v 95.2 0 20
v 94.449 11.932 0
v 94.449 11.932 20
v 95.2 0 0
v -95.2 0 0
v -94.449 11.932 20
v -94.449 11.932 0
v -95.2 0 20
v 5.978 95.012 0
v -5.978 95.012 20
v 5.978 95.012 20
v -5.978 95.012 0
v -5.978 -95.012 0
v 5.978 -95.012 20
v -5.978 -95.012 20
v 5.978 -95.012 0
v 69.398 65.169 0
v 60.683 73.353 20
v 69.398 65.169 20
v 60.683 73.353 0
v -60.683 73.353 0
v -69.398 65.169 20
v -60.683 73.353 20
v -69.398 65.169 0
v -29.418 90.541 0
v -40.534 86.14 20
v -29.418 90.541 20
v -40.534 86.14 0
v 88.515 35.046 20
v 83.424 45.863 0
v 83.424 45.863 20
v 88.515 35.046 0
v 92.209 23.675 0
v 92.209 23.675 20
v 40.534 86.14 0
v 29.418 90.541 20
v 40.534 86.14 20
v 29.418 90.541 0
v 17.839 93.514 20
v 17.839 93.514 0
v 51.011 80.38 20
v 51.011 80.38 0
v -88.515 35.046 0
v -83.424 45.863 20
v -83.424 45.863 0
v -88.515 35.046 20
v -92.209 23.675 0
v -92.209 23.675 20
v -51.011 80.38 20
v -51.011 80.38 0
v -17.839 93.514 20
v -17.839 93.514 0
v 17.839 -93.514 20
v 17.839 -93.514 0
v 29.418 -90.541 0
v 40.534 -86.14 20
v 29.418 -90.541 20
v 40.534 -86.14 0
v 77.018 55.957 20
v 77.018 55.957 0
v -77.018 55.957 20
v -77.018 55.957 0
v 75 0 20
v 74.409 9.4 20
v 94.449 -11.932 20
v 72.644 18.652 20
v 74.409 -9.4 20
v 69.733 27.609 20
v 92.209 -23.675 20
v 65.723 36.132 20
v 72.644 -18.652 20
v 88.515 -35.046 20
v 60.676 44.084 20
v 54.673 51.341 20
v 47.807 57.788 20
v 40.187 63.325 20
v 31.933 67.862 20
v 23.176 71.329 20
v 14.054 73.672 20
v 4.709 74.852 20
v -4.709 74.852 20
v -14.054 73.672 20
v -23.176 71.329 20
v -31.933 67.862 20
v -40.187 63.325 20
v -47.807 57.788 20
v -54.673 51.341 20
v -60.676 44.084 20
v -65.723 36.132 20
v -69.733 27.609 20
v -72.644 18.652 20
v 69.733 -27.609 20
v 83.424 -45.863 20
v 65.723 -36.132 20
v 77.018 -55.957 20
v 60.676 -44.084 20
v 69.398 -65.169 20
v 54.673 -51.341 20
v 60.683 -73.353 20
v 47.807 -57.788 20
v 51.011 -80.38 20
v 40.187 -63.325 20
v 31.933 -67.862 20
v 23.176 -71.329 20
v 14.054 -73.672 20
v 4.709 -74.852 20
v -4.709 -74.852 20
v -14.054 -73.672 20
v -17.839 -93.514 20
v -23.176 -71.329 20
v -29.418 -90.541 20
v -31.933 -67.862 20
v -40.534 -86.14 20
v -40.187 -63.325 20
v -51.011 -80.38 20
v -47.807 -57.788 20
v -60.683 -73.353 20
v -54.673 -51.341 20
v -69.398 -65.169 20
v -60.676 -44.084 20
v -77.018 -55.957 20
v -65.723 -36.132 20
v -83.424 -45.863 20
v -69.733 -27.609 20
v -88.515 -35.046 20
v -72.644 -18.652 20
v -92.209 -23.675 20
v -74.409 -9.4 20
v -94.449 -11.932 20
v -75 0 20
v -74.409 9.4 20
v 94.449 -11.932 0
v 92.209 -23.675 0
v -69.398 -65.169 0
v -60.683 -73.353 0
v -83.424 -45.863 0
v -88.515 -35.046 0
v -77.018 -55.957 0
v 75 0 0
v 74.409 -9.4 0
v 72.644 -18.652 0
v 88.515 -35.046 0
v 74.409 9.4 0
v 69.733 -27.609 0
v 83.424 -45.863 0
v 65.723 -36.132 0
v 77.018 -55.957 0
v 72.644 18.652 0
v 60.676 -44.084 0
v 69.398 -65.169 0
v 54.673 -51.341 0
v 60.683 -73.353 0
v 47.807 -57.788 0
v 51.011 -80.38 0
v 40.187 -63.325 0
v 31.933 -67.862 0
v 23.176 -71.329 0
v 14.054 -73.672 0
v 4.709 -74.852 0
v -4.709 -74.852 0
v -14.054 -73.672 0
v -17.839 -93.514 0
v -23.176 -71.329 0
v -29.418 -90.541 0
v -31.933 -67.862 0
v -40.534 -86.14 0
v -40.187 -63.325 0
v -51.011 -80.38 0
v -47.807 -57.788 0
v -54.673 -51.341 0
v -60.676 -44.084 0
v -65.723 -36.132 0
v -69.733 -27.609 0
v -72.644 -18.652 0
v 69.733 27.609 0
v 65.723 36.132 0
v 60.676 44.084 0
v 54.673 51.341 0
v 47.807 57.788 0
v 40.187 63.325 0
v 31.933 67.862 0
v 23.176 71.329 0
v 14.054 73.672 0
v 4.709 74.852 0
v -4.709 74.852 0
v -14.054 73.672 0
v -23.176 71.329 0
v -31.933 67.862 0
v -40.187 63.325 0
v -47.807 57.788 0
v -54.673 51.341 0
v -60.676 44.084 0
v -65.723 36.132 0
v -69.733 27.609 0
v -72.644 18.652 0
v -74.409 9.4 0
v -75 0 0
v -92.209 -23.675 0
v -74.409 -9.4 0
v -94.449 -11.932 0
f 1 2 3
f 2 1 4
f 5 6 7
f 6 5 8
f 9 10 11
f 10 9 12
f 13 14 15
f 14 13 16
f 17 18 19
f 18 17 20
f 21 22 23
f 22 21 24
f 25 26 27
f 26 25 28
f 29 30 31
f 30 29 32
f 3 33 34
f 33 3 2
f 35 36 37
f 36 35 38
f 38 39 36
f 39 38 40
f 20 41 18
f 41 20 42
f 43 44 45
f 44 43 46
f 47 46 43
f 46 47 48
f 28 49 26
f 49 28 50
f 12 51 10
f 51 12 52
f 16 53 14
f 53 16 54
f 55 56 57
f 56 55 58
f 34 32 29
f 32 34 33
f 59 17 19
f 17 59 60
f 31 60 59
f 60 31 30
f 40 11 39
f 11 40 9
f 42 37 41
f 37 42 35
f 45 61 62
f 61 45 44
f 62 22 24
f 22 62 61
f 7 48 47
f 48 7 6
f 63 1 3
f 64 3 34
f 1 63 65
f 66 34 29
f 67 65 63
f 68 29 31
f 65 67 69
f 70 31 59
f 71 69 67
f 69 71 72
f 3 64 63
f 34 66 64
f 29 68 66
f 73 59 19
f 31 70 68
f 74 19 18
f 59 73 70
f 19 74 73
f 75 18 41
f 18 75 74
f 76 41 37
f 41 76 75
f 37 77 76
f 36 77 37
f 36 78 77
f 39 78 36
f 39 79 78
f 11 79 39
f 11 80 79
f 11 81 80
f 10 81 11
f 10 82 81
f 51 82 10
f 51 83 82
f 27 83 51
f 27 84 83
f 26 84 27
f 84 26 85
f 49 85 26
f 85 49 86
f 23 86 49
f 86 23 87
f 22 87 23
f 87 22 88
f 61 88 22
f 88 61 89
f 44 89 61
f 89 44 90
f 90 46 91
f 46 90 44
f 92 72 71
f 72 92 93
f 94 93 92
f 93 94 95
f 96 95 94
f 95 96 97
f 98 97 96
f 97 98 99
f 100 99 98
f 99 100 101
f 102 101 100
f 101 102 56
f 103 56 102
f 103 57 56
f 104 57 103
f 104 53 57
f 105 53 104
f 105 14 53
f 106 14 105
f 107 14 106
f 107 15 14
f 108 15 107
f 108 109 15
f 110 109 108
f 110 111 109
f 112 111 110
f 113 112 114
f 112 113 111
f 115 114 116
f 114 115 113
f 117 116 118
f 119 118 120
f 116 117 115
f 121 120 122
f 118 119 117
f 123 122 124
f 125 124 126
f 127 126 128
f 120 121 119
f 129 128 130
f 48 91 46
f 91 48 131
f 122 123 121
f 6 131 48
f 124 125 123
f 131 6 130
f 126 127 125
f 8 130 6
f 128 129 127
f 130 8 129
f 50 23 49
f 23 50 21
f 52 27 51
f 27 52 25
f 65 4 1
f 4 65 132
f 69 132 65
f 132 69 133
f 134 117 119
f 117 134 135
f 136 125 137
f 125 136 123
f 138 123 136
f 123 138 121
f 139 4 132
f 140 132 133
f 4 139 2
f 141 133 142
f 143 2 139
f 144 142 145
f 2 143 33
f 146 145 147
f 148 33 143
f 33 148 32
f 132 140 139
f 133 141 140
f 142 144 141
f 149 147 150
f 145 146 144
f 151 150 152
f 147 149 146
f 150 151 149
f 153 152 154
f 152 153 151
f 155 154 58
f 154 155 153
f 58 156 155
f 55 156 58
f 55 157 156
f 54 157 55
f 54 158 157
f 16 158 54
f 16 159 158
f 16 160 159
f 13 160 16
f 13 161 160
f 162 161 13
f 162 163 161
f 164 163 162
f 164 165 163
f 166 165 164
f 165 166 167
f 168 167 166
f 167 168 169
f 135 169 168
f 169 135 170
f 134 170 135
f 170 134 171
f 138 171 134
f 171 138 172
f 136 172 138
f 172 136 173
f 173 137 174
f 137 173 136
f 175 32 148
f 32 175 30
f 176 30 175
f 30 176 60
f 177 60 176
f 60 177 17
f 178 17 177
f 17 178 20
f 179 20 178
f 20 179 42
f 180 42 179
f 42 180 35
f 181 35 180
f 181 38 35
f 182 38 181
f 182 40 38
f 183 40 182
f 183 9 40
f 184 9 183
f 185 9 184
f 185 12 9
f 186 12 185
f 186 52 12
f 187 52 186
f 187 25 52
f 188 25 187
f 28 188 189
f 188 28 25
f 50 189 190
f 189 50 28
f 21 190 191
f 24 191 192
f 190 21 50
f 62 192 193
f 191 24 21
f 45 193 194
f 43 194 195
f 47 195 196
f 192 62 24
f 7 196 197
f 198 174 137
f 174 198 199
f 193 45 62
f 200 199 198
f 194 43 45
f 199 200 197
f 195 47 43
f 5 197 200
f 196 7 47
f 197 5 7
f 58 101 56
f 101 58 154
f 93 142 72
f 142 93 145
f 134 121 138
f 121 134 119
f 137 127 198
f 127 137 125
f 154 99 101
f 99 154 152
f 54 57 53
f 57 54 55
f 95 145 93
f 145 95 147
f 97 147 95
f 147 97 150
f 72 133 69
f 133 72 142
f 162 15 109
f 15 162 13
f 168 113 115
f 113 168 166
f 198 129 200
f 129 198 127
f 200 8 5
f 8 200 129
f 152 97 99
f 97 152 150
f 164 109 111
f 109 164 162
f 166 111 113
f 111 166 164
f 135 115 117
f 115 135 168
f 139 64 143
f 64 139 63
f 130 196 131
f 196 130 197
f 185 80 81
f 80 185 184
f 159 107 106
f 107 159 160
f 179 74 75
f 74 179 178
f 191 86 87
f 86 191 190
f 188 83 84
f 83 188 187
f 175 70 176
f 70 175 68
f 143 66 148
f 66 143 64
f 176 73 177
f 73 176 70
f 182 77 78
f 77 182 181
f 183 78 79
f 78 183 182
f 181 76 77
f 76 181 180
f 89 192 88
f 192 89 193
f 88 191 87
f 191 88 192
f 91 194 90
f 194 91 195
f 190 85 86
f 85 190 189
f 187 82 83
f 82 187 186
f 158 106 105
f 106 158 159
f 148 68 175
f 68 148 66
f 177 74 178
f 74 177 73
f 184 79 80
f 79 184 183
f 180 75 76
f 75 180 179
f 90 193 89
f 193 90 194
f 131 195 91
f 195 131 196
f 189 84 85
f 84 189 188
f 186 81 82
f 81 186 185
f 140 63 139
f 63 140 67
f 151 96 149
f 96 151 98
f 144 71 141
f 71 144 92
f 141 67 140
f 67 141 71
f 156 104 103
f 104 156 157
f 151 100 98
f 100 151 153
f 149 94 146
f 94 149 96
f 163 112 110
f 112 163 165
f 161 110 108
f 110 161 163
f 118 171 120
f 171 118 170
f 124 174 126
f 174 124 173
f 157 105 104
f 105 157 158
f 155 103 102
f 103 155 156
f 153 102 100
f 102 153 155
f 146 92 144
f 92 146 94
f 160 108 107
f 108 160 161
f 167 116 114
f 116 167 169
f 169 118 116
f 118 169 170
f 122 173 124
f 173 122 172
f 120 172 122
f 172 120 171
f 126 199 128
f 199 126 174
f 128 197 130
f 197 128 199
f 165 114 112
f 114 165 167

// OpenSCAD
$fn = 50;


difference() {
	union() {
		translate(v = [0, 0, 0]) {
			rotate(a = [0, 0, 0]) {
				cylinder(h = 20, r = 95.2000000000);
			}
		}
	}
	union() {
		translate(v = [0, 0, 0]) {
			rotate(a = [0, 0, 0]) {
				cylinder(h = 20, r = 75.0000000000);
			}
		}
	}
}
